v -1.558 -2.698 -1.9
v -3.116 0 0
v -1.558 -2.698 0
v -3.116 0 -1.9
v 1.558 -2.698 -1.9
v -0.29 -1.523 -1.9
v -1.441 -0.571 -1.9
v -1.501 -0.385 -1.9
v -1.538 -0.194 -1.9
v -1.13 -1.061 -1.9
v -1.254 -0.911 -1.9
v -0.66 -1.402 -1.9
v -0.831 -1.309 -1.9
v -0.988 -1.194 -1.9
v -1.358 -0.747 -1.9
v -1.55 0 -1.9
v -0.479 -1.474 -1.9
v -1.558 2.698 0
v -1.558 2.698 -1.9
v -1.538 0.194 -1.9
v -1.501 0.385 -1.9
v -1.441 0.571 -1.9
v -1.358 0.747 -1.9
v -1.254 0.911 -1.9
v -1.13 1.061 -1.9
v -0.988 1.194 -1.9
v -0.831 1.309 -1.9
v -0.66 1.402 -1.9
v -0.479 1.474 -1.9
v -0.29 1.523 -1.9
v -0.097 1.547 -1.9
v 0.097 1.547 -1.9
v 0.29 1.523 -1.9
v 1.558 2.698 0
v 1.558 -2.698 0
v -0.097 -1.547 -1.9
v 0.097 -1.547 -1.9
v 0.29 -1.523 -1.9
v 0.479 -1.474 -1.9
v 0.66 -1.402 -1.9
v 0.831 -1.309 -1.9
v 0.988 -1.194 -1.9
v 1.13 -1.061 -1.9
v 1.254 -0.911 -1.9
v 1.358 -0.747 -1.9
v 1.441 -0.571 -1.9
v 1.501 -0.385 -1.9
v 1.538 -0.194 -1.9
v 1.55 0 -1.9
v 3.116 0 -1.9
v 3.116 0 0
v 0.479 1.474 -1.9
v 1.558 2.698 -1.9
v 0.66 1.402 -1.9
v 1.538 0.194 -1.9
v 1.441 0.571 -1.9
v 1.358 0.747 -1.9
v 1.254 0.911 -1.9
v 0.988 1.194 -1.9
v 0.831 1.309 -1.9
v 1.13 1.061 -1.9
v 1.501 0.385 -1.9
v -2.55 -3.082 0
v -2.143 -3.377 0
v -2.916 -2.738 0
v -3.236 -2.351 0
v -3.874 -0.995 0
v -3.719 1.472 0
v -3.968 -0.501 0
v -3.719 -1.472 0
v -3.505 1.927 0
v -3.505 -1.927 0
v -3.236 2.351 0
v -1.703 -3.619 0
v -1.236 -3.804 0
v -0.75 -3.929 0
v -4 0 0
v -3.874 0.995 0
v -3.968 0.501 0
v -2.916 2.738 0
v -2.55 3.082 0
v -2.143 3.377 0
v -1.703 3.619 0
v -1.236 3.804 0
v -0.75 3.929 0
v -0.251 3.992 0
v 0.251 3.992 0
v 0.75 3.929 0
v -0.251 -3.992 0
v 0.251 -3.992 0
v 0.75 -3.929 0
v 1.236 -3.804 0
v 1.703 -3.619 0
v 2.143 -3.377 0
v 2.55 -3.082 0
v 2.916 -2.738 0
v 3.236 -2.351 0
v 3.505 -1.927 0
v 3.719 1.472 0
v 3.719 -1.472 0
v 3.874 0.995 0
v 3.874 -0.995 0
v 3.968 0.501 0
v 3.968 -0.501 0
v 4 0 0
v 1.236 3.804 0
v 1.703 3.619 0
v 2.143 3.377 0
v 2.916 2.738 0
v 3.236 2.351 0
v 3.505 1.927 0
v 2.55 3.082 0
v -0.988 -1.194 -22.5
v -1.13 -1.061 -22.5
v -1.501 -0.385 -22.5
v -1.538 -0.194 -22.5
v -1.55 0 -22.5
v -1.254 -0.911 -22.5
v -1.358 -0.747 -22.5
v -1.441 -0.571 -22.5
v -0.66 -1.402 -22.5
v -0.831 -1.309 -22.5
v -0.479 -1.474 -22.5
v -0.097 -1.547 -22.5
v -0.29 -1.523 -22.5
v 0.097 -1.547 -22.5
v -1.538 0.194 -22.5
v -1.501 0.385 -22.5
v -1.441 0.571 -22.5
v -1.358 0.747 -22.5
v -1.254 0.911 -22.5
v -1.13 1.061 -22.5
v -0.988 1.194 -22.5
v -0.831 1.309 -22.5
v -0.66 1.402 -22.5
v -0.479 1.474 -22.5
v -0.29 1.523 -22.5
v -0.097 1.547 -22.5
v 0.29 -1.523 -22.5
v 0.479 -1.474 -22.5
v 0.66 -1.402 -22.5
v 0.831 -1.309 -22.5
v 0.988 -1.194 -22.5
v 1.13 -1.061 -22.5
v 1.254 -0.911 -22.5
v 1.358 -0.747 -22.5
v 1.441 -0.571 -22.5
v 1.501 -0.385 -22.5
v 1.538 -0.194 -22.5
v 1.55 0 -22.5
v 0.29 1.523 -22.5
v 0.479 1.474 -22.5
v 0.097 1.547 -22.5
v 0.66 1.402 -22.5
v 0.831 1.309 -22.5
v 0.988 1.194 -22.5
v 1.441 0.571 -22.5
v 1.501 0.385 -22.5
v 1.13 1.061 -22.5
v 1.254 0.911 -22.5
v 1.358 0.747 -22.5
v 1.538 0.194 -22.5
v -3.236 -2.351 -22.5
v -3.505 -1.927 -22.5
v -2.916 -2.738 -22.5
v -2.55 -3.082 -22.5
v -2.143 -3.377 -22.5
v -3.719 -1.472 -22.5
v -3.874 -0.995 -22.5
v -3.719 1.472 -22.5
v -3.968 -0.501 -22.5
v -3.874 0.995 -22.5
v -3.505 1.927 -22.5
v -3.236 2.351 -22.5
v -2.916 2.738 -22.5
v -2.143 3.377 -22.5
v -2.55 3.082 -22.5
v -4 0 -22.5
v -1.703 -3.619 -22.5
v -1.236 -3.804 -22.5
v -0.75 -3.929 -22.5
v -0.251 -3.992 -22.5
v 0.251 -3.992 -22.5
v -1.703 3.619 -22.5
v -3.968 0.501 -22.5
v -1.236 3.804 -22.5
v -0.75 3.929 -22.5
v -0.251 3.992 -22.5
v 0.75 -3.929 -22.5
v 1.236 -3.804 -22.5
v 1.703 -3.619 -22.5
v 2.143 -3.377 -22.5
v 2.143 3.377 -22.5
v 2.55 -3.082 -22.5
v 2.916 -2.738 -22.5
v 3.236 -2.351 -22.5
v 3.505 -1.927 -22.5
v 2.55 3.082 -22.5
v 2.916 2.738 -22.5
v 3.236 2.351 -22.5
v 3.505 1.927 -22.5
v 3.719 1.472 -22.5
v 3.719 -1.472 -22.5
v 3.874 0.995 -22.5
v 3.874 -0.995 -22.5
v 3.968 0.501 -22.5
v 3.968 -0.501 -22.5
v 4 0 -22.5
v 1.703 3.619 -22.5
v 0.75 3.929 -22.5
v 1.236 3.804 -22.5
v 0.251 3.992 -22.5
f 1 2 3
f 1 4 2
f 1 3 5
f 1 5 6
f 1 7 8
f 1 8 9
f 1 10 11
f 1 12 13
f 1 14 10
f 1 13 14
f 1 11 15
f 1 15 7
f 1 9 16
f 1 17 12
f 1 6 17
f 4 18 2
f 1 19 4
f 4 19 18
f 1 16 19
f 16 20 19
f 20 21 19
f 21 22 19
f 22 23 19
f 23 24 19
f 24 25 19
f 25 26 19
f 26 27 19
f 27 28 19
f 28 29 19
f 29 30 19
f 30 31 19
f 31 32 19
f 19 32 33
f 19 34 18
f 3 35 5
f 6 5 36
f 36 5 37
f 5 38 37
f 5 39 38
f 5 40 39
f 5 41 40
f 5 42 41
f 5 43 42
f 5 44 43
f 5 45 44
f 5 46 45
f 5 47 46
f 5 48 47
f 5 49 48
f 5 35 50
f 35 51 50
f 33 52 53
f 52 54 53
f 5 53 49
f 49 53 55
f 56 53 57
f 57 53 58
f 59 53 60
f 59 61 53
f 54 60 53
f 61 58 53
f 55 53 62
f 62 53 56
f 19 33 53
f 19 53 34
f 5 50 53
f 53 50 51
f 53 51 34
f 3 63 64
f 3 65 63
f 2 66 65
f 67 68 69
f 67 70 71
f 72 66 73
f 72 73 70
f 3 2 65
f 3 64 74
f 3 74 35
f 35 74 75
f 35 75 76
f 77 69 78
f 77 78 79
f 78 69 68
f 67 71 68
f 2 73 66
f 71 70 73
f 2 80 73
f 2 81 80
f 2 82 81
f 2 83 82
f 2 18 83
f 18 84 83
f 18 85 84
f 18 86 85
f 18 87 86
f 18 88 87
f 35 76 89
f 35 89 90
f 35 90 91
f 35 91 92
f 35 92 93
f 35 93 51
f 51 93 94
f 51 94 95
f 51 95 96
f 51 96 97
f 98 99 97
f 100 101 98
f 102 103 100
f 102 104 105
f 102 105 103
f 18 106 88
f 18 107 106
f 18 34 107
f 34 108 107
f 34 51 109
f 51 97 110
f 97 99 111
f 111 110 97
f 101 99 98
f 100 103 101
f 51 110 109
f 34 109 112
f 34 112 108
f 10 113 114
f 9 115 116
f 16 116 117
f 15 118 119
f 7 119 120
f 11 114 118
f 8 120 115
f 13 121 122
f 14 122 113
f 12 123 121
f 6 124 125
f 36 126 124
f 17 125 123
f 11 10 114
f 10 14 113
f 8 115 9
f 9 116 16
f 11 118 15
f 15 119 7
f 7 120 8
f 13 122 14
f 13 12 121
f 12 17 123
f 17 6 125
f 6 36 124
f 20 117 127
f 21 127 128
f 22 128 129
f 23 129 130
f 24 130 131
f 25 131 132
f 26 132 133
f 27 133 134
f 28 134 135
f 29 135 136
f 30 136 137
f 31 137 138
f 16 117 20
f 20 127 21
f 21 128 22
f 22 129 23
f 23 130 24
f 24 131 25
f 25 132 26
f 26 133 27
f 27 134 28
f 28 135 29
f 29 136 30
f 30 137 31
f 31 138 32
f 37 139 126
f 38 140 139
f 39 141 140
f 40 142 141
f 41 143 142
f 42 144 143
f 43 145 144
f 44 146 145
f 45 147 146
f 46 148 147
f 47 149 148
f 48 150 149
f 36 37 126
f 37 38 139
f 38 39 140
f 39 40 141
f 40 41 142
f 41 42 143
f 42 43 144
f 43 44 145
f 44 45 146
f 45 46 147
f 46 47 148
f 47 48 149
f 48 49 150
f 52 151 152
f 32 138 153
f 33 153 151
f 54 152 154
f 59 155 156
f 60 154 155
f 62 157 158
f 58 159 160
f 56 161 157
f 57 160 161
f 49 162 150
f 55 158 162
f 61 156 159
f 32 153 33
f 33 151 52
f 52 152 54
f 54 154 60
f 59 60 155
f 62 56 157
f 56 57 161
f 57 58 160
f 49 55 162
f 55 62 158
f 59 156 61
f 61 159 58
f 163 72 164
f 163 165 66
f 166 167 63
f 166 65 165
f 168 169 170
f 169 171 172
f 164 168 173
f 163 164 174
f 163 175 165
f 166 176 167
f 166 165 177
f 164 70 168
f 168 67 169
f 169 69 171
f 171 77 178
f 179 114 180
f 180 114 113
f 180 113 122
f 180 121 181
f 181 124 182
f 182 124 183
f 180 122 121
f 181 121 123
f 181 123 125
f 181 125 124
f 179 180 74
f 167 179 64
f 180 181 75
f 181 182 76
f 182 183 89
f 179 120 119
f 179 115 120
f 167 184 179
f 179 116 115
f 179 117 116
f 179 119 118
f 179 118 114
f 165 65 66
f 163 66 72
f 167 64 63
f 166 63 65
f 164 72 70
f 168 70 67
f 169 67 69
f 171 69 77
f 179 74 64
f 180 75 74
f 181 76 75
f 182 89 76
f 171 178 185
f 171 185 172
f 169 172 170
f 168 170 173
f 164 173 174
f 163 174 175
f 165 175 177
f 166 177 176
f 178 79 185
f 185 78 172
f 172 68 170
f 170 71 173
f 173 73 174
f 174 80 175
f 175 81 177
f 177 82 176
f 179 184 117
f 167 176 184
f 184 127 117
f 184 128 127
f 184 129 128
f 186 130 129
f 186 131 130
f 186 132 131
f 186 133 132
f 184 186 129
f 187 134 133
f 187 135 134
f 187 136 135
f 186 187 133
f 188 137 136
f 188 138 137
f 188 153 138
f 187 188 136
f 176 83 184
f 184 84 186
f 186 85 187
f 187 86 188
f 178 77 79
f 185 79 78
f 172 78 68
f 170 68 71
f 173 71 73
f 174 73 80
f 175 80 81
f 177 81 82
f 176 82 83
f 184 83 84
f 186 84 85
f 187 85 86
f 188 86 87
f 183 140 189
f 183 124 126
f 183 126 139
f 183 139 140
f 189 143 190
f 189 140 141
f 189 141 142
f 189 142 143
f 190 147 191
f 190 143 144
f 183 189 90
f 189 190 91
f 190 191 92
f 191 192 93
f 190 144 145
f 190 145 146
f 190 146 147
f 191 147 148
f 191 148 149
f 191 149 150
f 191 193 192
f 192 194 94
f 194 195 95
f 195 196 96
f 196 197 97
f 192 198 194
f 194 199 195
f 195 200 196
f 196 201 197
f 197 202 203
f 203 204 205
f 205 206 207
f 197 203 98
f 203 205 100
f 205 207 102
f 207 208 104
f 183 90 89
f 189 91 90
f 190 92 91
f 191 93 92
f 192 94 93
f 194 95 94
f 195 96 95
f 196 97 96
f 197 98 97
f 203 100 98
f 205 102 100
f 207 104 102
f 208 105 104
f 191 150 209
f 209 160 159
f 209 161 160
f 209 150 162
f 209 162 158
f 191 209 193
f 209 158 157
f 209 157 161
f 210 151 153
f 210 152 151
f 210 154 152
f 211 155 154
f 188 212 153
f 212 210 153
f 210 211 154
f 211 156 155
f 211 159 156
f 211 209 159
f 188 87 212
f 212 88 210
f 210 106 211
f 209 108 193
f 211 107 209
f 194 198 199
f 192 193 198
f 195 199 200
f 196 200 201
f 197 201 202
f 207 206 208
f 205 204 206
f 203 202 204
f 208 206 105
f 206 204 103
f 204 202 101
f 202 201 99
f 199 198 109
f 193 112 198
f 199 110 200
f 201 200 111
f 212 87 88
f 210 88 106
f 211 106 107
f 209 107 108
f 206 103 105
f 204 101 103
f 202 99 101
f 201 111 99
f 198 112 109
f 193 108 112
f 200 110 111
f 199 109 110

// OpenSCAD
$fn = 50;

difference() {
	union() {
		translate(v = [0, 0, -22.5]) {
			cylinder(h = 25.5, r = 4.0);
		}
	}
	union() {
		translate(v = [0, 0, 0]) {
			rotate(a = [0, 0, 0]) {
				difference() {
					union() {
						translate(v = [0, 0, -1.9]) {
							linear_extrude(height = 1.9) {
								polygon(points = [[3.1158, 0.0], [1.5579000000000005, 2.698361953111554], [-1.5578999999999994, 2.6983619531115544], [-3.1158, 3.815754496783323e-16], [-1.5579000000000014, -2.6983619531115535], [1.557899999999998, -2.6983619531115552]]);
							}
						}
					}
					union();
				}
			}
		}
		#cylinder(h = 3, r = 5.0);
		#translate(v = [0, 0, -100.0]) {
			cylinder(h = 200, r = 1.55);
		}
	}
}
